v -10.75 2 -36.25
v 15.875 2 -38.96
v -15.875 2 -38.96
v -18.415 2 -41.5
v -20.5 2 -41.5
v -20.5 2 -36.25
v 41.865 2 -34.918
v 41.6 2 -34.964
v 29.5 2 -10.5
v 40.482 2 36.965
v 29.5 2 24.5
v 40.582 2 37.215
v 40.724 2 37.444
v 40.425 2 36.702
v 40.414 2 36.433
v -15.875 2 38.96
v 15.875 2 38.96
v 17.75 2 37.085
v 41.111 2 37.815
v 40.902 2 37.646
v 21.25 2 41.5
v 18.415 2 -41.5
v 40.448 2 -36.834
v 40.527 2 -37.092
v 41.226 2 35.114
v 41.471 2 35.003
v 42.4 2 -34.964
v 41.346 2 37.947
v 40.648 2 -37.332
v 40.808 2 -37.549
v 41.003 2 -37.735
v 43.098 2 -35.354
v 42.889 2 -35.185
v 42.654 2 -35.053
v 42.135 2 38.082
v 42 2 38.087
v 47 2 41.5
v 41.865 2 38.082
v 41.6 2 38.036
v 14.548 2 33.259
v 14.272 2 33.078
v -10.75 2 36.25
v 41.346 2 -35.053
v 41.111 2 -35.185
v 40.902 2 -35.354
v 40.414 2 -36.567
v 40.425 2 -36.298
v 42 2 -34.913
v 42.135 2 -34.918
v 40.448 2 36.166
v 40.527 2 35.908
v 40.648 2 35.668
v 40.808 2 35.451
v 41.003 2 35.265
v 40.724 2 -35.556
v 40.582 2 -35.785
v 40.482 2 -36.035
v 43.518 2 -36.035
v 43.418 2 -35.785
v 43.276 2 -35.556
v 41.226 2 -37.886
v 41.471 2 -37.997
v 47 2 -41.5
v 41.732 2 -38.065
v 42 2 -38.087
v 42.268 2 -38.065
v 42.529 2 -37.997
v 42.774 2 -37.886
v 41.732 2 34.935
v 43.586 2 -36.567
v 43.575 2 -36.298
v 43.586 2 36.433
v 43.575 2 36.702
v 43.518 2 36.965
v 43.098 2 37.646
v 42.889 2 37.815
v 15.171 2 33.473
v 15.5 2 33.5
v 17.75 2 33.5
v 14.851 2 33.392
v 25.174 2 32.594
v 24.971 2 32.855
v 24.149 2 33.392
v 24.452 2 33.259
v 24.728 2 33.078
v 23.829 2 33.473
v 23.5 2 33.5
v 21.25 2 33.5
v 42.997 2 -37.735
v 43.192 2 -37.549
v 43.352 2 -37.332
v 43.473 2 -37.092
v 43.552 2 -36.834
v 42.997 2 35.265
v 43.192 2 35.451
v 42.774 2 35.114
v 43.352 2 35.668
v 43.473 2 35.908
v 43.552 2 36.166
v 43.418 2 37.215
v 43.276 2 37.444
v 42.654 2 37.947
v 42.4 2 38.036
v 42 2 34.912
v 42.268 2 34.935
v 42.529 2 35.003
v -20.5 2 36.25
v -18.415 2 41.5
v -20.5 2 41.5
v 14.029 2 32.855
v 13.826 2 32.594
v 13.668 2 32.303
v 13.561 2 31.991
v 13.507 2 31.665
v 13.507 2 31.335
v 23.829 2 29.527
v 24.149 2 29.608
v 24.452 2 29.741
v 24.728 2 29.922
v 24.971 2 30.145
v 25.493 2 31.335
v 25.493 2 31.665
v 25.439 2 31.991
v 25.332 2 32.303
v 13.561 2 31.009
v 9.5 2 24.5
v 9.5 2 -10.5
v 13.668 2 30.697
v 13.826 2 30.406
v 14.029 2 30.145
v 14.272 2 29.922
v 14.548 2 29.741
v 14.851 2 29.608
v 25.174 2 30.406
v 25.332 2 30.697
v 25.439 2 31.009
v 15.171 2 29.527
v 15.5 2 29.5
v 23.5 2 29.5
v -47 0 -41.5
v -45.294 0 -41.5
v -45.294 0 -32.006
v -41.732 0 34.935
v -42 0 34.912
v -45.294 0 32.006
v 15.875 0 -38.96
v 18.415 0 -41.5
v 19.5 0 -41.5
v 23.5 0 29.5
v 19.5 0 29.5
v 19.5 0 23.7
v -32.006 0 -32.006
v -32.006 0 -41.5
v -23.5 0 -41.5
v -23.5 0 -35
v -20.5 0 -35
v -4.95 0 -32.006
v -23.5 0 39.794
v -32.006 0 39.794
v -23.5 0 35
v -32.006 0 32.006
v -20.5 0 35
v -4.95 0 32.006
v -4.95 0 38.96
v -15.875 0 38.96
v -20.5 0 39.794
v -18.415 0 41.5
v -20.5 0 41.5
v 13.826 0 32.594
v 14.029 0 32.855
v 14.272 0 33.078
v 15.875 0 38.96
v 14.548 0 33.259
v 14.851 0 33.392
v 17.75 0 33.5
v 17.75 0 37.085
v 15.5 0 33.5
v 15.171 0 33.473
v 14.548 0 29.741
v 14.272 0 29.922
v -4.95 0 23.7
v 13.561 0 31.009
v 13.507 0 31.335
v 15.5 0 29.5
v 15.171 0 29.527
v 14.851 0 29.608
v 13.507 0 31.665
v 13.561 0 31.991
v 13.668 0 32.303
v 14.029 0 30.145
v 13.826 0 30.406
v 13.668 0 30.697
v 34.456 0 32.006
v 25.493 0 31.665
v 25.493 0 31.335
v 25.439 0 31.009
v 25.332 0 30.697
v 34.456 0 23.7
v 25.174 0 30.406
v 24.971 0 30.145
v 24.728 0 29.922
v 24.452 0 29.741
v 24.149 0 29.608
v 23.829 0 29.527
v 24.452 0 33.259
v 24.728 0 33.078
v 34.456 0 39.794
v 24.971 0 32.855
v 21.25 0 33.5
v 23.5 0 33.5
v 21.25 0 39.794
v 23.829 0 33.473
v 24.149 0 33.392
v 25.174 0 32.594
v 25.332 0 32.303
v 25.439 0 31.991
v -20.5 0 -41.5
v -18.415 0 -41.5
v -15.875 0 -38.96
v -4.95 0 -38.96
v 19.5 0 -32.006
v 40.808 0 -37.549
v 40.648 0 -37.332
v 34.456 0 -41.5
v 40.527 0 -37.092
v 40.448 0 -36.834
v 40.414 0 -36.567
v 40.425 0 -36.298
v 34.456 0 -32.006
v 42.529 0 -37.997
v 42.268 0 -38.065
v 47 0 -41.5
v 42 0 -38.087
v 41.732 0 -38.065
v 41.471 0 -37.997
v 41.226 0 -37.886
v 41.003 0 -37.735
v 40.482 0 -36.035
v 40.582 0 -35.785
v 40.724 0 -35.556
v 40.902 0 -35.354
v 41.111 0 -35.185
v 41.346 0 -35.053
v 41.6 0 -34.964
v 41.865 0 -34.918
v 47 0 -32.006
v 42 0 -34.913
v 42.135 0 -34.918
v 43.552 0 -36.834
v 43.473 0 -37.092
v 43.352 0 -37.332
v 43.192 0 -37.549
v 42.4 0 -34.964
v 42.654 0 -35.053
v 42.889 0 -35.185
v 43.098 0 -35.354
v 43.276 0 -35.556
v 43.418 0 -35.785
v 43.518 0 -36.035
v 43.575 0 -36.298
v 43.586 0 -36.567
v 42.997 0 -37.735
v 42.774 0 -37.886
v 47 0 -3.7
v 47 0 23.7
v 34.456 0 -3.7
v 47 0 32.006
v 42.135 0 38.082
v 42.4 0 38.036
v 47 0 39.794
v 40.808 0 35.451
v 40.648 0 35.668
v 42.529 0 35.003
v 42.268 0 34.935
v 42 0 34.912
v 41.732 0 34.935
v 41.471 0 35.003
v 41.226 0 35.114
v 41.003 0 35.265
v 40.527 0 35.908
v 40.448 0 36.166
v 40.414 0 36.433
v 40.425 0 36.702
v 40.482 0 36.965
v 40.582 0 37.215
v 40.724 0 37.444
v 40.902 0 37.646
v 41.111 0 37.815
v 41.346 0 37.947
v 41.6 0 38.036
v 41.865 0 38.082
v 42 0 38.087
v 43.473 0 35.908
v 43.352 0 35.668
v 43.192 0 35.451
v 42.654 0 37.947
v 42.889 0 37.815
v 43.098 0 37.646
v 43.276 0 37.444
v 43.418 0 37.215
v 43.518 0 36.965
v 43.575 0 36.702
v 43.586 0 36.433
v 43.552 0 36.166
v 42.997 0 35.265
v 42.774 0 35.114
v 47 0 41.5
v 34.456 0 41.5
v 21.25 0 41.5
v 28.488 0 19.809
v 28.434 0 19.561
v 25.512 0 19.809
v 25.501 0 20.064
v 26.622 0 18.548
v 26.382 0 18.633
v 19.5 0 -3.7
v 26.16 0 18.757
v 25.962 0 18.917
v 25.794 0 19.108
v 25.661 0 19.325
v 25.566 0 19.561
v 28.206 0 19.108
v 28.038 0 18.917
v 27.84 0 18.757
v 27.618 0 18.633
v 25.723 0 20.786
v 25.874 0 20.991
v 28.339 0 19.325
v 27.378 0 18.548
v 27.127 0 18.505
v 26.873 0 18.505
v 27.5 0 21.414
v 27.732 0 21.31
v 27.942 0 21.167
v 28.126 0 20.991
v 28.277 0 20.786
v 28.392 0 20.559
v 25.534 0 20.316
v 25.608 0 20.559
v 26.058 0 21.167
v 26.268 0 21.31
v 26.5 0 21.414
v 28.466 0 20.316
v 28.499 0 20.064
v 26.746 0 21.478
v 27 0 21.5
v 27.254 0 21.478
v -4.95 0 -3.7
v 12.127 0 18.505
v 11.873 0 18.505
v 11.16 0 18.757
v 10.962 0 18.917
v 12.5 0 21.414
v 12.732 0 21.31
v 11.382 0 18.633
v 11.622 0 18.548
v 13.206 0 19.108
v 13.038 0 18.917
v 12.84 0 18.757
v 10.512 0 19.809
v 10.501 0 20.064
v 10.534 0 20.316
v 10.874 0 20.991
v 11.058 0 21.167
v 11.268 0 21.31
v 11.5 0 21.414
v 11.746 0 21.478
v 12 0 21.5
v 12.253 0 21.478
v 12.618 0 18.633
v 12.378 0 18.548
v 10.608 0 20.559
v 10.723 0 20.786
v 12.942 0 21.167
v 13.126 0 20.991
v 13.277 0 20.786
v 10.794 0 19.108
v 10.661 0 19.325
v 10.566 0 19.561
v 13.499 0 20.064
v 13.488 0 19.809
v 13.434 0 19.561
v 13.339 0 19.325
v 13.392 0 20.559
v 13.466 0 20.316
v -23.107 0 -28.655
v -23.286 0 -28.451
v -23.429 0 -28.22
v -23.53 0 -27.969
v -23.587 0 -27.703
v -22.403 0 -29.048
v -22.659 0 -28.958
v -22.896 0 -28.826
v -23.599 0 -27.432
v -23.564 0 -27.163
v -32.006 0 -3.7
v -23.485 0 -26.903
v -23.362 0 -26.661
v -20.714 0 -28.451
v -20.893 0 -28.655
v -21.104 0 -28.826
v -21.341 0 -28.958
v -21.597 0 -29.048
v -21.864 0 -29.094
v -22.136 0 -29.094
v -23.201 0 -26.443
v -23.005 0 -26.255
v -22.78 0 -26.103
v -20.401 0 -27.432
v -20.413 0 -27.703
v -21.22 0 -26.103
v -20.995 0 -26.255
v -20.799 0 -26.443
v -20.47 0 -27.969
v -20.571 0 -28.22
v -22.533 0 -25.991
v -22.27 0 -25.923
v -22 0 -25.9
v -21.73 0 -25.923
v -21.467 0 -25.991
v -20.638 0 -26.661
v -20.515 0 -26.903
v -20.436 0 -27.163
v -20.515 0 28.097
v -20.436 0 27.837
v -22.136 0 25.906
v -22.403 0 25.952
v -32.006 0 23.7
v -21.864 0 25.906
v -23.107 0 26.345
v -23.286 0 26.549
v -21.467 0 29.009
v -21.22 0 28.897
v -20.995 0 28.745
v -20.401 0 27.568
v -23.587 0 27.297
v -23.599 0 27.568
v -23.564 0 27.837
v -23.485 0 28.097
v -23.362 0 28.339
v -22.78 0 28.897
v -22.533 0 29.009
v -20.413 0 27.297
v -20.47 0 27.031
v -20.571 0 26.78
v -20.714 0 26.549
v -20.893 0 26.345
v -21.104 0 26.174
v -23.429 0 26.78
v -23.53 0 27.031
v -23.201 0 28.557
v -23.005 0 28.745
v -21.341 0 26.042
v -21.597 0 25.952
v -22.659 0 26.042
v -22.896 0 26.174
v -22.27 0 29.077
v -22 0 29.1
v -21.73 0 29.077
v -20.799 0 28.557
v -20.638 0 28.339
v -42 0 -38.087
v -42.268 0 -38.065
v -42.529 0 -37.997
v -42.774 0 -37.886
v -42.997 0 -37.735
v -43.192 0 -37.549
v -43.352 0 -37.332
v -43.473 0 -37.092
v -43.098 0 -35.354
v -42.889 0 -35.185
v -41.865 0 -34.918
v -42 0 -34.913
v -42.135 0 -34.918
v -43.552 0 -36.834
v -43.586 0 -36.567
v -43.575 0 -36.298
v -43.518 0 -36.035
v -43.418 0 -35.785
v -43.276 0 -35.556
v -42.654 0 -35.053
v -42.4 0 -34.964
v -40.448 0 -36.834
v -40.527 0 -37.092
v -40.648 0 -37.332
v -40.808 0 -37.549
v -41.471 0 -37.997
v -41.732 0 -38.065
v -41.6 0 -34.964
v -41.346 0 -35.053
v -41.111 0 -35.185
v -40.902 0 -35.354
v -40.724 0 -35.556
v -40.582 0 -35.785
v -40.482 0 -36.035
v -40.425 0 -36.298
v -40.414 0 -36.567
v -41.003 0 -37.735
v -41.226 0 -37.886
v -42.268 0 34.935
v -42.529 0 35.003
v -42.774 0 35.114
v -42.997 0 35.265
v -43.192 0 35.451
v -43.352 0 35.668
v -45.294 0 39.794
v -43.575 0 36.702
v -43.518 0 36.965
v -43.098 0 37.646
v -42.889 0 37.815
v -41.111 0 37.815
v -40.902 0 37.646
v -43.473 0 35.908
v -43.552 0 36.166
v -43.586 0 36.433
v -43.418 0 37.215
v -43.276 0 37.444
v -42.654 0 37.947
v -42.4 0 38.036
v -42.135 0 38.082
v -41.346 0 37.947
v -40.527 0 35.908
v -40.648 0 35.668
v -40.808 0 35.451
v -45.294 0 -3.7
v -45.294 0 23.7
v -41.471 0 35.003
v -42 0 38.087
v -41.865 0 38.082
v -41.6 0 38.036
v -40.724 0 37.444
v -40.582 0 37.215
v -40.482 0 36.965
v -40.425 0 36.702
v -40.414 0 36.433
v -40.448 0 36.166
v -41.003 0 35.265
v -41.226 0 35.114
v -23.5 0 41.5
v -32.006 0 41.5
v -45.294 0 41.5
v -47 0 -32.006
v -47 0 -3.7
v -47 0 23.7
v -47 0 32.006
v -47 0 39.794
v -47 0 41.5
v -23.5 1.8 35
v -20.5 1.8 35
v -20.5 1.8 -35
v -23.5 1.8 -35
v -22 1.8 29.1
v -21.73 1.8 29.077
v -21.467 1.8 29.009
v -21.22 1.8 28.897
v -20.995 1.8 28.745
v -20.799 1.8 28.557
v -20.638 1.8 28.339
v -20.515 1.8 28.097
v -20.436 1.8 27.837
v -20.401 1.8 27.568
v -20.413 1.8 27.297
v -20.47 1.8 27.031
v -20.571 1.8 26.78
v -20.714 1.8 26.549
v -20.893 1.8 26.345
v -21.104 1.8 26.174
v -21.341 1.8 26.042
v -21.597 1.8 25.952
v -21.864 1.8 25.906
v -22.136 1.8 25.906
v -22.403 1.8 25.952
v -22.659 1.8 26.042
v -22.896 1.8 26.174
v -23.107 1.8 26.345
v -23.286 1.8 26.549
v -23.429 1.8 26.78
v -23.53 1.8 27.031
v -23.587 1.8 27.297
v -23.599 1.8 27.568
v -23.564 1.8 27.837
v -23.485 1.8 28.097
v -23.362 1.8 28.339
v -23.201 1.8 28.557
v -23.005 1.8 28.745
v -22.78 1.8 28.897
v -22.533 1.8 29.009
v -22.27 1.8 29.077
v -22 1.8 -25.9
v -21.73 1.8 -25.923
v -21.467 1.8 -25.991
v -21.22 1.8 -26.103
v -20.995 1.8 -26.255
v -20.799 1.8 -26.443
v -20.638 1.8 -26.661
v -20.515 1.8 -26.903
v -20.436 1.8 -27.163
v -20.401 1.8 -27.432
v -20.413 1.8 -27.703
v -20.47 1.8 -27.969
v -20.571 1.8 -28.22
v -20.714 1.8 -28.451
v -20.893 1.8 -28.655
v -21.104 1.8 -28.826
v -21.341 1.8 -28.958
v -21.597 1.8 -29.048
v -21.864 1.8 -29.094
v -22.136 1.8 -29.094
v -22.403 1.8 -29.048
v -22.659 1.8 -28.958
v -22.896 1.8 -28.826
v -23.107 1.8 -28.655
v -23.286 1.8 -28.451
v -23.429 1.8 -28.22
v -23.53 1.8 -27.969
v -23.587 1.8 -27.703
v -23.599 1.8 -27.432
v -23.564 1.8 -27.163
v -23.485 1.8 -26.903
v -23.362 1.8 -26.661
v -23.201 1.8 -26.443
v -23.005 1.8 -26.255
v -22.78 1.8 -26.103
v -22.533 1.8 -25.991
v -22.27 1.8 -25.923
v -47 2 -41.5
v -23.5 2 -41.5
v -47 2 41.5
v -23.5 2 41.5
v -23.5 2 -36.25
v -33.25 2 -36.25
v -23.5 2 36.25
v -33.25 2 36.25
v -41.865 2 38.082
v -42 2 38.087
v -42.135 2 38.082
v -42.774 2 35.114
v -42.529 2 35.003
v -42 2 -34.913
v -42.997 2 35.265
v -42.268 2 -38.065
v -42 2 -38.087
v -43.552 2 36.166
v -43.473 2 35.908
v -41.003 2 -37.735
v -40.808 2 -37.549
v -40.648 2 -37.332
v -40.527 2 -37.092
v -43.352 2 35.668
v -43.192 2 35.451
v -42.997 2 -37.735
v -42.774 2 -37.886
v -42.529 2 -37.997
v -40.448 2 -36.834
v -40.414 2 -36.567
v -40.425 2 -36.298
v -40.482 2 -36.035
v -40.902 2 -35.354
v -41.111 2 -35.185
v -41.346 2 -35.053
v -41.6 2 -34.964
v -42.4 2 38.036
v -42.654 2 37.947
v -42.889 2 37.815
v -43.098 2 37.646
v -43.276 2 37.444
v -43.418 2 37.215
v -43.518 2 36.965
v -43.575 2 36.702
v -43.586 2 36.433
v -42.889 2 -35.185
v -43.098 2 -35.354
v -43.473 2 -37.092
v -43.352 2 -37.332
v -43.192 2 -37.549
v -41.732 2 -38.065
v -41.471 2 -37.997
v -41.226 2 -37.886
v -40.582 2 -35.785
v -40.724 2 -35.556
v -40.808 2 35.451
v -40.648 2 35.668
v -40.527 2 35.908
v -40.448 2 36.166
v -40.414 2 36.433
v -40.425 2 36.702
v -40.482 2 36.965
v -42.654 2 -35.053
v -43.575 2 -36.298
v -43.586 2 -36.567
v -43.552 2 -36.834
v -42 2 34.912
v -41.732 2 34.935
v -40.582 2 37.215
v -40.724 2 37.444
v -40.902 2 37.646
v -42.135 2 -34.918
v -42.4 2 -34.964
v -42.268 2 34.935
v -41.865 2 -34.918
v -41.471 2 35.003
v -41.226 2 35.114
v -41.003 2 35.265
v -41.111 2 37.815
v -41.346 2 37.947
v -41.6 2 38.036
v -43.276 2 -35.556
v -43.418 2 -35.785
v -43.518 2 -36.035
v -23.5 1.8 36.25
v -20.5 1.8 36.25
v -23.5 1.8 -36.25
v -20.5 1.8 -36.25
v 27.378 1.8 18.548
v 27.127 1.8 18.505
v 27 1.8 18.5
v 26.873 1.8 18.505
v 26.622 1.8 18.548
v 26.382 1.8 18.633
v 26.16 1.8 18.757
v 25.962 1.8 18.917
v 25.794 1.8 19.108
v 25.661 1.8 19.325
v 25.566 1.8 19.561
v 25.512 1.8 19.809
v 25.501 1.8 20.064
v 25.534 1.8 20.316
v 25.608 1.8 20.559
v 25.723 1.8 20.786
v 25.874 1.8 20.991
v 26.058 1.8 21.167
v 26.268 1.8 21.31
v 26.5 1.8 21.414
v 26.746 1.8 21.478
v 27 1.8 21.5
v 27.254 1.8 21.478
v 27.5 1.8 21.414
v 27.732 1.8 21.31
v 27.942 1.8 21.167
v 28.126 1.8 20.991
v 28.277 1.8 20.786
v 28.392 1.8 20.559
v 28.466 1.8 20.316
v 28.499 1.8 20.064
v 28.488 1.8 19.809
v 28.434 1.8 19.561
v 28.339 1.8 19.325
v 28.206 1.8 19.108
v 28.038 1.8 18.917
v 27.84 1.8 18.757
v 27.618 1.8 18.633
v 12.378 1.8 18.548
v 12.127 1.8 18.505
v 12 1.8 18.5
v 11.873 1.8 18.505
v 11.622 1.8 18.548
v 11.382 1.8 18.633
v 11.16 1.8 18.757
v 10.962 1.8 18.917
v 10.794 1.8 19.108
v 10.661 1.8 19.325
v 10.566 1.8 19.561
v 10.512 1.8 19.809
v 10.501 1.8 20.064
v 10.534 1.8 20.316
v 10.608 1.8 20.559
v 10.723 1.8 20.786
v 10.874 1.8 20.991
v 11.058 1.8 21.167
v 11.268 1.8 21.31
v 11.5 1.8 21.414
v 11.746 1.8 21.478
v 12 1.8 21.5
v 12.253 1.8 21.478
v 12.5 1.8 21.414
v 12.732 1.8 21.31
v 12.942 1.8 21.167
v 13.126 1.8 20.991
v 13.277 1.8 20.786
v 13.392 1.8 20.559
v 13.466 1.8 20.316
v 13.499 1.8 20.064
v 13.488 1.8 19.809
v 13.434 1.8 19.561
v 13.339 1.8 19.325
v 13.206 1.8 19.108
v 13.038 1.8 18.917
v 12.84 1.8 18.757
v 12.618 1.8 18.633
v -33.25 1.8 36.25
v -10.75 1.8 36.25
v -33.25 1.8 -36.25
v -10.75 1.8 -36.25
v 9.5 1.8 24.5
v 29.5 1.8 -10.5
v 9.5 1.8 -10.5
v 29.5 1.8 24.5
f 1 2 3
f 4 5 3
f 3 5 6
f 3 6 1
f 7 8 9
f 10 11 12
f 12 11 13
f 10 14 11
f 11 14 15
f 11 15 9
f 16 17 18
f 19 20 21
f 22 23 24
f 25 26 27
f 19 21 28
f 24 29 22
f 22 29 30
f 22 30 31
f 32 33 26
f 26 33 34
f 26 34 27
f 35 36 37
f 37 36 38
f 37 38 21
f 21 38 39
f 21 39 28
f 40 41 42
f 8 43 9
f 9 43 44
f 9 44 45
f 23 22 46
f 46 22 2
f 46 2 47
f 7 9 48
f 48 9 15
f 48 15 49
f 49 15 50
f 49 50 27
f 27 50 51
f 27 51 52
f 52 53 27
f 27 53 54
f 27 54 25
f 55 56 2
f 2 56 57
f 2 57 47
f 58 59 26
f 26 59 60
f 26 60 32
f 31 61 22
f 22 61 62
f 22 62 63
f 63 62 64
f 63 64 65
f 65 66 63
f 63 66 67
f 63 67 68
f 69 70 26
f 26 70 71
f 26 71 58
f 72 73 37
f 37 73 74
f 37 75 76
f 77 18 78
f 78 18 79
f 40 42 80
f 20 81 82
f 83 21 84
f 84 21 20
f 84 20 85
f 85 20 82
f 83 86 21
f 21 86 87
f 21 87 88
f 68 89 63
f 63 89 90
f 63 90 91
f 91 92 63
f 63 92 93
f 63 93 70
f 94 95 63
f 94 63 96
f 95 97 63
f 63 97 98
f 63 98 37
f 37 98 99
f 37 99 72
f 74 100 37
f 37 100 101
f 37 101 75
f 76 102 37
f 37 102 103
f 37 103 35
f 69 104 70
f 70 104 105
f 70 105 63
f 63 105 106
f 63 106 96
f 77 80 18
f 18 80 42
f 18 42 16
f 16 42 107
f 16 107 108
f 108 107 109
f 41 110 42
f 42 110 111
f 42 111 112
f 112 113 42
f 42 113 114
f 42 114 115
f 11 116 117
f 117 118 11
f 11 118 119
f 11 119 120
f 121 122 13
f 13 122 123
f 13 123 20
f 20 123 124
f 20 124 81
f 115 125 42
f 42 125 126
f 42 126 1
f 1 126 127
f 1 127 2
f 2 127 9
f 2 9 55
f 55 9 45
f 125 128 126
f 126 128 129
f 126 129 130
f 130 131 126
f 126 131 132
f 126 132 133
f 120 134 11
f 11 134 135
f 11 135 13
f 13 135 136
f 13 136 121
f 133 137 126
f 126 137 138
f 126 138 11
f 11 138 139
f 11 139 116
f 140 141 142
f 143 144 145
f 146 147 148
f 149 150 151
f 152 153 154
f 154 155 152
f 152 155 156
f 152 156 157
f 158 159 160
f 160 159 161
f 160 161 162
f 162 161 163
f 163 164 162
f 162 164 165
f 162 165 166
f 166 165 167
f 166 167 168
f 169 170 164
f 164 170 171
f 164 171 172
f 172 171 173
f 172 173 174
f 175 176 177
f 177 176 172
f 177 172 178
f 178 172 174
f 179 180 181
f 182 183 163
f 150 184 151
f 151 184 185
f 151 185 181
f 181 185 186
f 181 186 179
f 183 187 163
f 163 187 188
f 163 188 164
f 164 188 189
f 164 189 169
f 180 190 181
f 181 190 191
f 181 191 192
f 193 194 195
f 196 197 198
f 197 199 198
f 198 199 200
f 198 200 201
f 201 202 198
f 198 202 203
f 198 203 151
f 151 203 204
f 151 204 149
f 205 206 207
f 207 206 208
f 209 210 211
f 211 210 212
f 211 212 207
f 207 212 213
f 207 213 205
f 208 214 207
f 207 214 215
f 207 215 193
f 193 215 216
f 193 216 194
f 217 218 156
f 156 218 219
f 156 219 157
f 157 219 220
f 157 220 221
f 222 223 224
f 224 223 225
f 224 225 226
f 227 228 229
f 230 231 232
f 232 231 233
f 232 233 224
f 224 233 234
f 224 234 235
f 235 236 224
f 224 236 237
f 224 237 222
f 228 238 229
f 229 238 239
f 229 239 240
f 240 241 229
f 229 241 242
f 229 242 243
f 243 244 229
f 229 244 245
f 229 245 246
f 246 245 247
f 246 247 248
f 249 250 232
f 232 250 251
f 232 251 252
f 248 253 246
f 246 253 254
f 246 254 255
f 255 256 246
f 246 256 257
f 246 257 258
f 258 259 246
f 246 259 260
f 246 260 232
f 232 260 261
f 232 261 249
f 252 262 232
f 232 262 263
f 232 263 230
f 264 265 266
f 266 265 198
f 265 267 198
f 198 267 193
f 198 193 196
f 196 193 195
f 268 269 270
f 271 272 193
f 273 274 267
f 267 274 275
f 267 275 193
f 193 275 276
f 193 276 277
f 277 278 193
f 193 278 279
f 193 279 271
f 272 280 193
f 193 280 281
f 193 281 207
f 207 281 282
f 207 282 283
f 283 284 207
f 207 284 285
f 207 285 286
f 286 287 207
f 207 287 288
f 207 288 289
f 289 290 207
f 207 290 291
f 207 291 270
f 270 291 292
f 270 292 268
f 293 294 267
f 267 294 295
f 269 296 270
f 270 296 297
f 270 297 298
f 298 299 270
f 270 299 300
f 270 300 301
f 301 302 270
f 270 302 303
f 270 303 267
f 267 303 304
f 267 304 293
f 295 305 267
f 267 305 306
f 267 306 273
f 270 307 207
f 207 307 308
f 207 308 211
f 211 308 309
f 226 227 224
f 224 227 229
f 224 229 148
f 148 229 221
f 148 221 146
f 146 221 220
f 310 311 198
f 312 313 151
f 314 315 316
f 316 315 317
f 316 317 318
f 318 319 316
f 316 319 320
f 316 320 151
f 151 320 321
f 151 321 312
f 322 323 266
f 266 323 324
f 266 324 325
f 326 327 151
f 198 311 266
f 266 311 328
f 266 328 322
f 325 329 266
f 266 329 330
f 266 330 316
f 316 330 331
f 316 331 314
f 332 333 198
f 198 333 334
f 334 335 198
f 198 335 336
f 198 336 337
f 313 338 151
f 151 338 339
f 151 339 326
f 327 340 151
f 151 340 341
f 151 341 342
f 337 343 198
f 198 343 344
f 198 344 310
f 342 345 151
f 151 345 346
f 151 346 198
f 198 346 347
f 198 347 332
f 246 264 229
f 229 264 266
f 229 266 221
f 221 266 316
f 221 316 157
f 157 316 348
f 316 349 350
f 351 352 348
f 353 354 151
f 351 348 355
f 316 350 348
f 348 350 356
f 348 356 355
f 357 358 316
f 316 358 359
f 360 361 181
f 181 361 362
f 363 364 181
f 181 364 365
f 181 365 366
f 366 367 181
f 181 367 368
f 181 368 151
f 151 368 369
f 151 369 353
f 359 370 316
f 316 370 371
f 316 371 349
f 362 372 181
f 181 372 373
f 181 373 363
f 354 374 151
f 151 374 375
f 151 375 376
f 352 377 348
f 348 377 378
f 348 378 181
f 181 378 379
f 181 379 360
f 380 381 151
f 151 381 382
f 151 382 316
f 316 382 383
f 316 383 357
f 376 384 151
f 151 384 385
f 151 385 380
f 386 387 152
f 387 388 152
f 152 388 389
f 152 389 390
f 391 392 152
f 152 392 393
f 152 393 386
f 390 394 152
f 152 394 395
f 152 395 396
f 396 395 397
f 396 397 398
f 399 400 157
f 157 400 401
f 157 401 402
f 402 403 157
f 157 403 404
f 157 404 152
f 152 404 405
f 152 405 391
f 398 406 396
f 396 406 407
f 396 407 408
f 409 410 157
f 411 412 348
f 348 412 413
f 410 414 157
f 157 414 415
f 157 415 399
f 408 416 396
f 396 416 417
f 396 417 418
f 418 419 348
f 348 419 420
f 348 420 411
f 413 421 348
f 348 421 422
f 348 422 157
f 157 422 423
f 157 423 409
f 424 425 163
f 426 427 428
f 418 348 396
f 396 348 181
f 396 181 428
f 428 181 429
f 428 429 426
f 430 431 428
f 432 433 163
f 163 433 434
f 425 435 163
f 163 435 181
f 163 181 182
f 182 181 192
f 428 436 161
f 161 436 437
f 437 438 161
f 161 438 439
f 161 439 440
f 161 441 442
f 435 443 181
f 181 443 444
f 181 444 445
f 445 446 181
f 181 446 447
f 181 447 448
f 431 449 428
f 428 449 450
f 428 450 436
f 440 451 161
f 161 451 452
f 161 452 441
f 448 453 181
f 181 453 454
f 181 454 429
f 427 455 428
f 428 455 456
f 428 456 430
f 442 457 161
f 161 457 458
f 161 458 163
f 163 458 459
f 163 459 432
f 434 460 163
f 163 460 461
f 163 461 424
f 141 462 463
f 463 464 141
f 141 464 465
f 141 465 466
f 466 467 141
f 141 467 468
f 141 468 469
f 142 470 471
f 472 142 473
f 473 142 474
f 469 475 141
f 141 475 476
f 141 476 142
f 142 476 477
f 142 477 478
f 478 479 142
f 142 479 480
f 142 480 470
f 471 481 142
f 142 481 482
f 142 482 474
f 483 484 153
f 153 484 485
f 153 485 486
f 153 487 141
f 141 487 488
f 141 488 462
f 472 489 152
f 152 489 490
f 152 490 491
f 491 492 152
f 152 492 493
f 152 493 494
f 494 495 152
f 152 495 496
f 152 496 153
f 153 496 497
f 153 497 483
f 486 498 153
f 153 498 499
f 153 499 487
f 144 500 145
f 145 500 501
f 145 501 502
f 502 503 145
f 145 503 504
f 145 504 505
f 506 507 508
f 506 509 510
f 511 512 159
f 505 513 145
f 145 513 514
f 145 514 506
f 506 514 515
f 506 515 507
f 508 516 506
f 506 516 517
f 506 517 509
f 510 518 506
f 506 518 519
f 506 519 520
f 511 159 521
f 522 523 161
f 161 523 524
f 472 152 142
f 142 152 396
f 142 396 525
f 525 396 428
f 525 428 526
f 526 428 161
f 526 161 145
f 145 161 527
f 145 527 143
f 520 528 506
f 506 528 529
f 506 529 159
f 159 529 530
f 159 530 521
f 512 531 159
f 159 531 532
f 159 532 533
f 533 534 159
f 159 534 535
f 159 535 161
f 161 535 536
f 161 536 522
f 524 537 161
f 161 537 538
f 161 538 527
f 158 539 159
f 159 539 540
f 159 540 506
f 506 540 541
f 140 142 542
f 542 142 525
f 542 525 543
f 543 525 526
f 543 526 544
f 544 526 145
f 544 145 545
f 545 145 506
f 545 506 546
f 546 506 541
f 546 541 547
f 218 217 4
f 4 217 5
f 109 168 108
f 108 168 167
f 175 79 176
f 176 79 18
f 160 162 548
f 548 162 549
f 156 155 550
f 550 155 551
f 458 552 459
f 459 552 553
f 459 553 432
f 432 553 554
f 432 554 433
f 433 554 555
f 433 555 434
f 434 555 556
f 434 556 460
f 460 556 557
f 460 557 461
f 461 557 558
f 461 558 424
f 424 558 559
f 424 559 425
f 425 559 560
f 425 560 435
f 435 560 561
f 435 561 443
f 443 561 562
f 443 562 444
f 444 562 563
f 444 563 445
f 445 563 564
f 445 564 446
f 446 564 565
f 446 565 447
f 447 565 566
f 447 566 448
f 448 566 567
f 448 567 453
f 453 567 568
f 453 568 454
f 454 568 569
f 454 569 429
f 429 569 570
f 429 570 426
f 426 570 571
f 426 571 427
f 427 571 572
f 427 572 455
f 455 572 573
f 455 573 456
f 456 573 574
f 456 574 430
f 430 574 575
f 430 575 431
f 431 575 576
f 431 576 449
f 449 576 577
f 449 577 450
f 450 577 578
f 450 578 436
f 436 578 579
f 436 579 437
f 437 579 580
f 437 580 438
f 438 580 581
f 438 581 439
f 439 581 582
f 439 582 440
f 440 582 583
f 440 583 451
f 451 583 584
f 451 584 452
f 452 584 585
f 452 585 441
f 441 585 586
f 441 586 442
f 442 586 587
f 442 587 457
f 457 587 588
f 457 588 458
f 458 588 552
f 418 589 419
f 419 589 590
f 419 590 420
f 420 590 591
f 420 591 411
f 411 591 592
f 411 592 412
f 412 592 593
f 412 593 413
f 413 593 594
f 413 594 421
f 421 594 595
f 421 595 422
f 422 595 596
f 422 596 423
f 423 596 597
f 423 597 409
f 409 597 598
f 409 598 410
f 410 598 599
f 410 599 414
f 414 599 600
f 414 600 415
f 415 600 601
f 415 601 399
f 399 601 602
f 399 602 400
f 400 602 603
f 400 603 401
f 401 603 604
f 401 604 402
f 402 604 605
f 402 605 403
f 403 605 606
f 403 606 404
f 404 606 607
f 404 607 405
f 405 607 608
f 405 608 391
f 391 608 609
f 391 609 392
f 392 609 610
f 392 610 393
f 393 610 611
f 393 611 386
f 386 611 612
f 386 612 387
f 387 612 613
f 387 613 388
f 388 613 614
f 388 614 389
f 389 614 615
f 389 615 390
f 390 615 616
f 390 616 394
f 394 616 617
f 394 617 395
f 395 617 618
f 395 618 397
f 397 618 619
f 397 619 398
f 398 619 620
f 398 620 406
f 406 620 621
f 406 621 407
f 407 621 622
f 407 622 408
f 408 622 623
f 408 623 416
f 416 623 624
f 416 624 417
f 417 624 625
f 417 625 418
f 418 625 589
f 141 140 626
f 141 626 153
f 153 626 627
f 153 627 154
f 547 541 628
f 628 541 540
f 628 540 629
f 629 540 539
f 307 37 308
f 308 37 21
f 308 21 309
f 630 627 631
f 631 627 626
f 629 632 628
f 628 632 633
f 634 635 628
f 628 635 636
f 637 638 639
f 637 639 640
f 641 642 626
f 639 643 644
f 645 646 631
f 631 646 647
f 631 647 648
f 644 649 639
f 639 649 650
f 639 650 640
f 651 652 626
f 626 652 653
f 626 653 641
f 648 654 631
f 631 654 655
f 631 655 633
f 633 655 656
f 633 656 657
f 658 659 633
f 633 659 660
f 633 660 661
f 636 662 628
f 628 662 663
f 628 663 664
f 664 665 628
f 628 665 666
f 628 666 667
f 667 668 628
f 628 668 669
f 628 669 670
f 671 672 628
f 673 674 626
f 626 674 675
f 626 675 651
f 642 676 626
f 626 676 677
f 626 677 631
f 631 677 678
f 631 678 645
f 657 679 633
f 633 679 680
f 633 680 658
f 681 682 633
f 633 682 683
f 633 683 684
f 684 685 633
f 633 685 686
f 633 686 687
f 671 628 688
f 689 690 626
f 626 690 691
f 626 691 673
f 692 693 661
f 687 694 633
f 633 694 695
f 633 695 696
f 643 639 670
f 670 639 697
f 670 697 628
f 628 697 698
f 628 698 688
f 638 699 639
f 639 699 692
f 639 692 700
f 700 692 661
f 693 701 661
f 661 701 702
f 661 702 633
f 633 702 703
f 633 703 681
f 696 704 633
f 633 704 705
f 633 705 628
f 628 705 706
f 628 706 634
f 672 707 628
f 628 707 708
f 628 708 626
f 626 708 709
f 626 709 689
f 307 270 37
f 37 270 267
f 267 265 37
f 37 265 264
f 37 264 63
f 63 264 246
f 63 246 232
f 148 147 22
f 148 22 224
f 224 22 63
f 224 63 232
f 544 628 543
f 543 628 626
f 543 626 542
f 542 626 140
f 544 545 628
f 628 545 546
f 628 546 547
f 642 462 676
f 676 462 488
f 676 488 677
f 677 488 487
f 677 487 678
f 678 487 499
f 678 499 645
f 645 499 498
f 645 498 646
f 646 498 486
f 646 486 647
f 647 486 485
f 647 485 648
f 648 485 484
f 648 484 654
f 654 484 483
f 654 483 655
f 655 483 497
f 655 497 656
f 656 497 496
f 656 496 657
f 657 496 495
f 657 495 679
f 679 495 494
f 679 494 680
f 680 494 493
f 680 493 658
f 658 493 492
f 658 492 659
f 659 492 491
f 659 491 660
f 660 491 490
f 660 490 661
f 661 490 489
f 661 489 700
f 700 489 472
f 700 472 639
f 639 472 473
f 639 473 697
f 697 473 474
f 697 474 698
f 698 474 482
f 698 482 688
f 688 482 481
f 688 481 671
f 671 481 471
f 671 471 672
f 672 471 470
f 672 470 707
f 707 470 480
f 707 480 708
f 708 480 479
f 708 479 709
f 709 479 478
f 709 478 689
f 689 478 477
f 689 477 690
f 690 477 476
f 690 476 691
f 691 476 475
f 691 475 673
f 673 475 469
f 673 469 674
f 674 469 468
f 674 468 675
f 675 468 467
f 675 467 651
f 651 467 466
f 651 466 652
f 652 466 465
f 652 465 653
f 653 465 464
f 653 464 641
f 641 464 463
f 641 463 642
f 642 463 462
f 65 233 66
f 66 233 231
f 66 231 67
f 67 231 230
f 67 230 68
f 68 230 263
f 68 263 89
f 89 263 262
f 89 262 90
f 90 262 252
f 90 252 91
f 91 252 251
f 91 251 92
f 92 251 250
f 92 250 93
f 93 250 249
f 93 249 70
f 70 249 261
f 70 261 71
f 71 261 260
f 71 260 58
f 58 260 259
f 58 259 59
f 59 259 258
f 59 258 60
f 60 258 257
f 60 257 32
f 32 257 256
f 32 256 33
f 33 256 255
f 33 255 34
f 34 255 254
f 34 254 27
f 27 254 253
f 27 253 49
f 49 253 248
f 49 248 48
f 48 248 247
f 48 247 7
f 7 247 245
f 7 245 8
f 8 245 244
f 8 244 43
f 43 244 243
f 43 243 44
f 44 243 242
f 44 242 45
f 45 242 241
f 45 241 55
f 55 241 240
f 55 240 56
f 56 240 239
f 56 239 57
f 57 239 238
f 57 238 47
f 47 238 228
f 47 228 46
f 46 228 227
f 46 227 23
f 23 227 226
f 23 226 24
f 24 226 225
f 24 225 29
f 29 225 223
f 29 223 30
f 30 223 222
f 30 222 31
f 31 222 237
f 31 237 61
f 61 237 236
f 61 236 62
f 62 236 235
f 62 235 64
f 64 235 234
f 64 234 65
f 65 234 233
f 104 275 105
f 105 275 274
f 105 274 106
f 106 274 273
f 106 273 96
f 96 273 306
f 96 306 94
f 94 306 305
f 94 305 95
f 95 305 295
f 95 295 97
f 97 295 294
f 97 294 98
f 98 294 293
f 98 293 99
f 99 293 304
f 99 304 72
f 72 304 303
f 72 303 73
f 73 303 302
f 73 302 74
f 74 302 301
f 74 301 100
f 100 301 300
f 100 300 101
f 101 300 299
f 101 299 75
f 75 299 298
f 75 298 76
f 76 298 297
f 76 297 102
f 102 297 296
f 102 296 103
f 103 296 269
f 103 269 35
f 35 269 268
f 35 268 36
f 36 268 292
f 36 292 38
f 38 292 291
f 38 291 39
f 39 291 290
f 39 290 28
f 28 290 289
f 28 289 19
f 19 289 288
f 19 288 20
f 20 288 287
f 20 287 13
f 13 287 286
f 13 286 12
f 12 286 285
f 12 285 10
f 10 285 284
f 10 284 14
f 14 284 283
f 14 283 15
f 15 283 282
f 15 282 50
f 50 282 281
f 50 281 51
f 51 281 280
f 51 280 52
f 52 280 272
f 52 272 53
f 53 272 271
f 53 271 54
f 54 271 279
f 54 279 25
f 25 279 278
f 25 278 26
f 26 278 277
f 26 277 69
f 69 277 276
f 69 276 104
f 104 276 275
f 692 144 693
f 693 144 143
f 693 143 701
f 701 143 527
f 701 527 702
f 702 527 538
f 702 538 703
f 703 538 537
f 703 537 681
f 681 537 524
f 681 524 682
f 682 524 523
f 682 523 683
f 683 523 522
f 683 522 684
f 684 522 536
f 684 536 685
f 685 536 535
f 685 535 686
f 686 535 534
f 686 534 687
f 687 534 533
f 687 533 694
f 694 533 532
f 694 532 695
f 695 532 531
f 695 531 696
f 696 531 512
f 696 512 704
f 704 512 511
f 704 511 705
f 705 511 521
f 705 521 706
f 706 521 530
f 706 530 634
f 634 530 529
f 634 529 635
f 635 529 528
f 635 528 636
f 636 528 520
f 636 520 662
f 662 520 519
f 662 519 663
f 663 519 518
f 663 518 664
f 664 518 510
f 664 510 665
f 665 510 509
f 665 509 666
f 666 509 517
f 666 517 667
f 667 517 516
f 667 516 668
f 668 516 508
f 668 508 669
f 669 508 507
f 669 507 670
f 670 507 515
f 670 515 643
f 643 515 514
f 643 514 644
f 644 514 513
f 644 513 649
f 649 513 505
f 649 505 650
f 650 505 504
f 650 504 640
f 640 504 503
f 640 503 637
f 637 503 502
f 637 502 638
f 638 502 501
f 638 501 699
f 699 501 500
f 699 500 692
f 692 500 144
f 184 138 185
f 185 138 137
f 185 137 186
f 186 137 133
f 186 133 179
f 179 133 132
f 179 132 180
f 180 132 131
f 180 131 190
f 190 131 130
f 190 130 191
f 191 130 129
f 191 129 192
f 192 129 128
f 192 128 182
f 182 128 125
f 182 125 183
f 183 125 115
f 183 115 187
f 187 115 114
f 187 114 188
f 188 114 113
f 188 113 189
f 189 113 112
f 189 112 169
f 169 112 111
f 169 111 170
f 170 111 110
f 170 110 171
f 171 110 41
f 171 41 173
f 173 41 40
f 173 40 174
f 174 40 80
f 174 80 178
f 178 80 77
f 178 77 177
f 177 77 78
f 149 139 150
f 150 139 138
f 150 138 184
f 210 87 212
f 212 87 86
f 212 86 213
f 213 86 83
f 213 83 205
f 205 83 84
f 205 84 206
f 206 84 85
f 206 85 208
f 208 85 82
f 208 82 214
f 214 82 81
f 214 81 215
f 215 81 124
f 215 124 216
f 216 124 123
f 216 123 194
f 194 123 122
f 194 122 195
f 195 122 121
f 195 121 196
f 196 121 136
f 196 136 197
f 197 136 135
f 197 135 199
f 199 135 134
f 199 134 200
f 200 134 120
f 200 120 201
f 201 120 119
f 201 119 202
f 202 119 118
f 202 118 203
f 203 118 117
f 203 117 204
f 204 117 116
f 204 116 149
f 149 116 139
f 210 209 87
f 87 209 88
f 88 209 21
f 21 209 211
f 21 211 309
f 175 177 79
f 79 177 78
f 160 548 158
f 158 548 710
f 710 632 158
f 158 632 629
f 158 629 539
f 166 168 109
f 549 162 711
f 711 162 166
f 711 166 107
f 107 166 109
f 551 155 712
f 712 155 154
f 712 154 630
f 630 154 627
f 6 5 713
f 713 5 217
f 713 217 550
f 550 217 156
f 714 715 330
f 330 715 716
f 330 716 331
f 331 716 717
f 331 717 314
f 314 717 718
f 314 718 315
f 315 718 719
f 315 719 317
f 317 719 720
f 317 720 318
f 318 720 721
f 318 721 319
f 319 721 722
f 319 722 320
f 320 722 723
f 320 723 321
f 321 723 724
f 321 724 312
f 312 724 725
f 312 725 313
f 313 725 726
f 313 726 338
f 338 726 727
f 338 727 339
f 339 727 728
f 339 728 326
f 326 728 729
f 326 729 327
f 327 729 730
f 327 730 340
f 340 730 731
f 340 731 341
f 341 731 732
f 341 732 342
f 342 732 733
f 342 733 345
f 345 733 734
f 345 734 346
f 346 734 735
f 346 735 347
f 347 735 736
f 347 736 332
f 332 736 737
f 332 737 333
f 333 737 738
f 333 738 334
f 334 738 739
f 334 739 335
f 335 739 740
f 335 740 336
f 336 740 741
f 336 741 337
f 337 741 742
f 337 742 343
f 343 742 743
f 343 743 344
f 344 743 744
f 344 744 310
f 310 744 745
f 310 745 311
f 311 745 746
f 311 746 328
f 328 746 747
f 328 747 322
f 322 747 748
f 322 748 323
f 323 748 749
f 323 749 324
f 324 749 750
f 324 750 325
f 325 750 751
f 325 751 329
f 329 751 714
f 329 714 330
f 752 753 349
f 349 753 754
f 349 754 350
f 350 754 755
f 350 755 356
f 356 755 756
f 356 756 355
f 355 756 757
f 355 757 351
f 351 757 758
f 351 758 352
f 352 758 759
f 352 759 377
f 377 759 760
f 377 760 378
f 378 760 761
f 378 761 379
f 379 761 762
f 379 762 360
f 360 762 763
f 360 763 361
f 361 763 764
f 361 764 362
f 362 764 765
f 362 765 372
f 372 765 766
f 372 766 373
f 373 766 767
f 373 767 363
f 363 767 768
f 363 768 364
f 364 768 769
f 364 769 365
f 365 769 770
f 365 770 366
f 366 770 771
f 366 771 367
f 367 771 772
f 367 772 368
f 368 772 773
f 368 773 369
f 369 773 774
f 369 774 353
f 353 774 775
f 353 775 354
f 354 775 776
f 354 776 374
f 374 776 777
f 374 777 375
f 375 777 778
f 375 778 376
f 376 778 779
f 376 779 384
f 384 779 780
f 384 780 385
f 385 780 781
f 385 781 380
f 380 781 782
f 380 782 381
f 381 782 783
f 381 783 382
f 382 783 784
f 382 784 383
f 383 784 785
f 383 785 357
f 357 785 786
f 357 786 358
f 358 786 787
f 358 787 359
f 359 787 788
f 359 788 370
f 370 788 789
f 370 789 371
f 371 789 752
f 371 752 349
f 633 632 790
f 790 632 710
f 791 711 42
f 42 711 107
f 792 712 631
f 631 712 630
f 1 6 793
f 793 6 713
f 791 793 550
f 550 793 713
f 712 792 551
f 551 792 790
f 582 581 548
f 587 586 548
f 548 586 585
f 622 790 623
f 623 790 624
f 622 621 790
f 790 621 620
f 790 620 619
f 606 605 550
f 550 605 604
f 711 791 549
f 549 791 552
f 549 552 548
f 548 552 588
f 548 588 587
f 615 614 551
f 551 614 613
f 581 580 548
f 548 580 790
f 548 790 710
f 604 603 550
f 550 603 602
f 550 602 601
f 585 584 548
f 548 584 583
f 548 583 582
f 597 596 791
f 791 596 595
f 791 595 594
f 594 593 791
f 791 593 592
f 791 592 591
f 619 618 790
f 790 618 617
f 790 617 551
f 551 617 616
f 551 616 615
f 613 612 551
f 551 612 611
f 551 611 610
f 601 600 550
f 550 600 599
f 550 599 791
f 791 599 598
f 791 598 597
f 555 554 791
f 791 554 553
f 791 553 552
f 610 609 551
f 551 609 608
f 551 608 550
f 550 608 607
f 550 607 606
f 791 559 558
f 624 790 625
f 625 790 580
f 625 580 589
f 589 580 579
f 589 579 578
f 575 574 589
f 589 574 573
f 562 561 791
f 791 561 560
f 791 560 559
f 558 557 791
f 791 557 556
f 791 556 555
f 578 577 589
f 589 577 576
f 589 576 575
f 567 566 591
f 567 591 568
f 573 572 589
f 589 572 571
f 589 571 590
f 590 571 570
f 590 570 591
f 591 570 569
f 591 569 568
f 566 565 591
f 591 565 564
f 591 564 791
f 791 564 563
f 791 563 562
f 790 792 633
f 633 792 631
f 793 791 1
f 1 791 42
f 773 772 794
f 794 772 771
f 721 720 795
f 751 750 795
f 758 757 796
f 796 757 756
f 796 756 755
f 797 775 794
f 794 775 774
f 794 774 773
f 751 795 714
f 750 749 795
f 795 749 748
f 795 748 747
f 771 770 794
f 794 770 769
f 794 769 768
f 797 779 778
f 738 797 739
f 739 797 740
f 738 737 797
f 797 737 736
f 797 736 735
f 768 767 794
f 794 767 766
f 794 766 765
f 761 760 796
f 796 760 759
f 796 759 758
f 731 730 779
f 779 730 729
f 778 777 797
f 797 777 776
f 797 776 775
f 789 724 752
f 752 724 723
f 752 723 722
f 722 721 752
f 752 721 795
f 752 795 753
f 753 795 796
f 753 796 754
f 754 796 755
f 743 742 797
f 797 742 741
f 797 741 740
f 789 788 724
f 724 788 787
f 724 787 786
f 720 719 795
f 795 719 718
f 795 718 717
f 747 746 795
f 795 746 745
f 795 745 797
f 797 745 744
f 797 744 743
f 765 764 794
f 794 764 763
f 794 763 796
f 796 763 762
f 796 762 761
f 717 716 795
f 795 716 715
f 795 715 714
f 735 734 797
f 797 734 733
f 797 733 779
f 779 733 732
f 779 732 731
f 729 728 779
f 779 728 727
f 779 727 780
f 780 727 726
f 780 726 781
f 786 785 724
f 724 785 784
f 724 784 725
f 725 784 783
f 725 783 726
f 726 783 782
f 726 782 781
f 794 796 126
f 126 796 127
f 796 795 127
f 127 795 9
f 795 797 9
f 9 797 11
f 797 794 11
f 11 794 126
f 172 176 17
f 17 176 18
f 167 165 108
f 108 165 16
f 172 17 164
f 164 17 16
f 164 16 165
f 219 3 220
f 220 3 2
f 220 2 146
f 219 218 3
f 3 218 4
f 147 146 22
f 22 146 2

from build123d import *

# Parameters (mm, degrees)
SKETCH1_W           = 94
SKETCH1_H           = 83
SKETCH1_R           = 1.5875
BOSS_EXTRUDE1_DEPTH = 2
SKETCH2_R           = 1.6
SKETCH2_R_2         = 1.5
SKETCH2_W           = 3
SKETCH2_H           = 6.5
CUT_EXTRUDE1_DEPTH  = 3
SKETCH3_W           = 22.5
SKETCH3_H           = 72.5
SKETCH3_W_2         = 20
SKETCH3_H_2         = 35
CUT_EXTRUDE2_DEPTH  = 0.2
CUT_EXTRUDE3_DEPTH  = 3


with BuildPart() as part:
    # Sketch1 → Boss-Extrude1 (new body)
    with BuildSketch(Plane(origin=(0, 0, 0), x_dir=(1, 0, 0), z_dir=(0, 1, 0))):
        Rectangle(SKETCH1_W, SKETCH1_H)
        with Locations((-42, 36.5)):
            Circle(SKETCH1_R, mode=Mode.SUBTRACT)
        with Locations((42, 36.5)):
            Circle(SKETCH1_R, mode=Mode.SUBTRACT)
        with Locations((42, -36.5)):
            Circle(SKETCH1_R, mode=Mode.SUBTRACT)
        with Locations((-42, -36.5)):
            Circle(SKETCH1_R, mode=Mode.SUBTRACT)
    extrude(amount=BOSS_EXTRUDE1_DEPTH)

    # Sketch2 → Cut-Extrude1 (cut, through all)
    with BuildSketch(Plane(origin=(0, 2, 0), x_dir=(1, 0, 0), z_dir=(0, 1, 0))):
        with Locations((-22, -27.5)):
            Circle(SKETCH2_R)
        with Locations((-22, 27.5)):
            Circle(SKETCH2_R)
        with Locations((12, -20)):
            Circle(SKETCH2_R_2)
        with Locations((27, -20)):
            Circle(SKETCH2_R_2)
        with Locations((-22, 38.25)):
            Rectangle(SKETCH2_W, SKETCH2_H)
        with Locations((-22, -38.25)):
            Rectangle(SKETCH2_W, SKETCH2_H)
        with BuildLine():
            Line((15.5, -29.5), (23.5, -29.5))
            ThreePointArc((23.5, -29.5), (25.5, -31.5), (23.5, -33.5))
            Line((23.5, -33.5), (21.25, -33.5))
            Line((21.25, -33.5), (21.25, -41.5))
            Line((21.25, -41.5), (17.75, -41.5))
            Line((17.75, -41.5), (17.75, -33.5))
            Line((17.75, -33.5), (15.5, -33.5))
            ThreePointArc((15.5, -33.5), (13.5, -31.5), (15.5, -29.5))
        make_face()
    extrude(amount=-CUT_EXTRUDE1_DEPTH, mode=Mode.SUBTRACT)

    # Sketch3 → Cut-Extrude2 (cut)
    with BuildSketch(Plane(origin=(0, 2, 0), x_dir=(1, 0, 0), z_dir=(0, 1, 0))):
        with Locations((-22, 0)):
            Rectangle(SKETCH3_W, SKETCH3_H)
        with Locations((19.5, -7)):
            Rectangle(SKETCH3_W_2, SKETCH3_H_2)
    extrude(amount=-CUT_EXTRUDE2_DEPTH, mode=Mode.SUBTRACT)

    # Sketch4 → Cut-Extrude3 (cut, through all)
    with BuildSketch(Plane(origin=(0, 2, 0), x_dir=(1, 0, 0), z_dir=(0, 1, 0))):
        Polygon((18.415, 41.5), (-18.415, 41.5), (-15.875, 38.96), (15.875, 38.96), align=None)
        Polygon((-15.875, -38.96), (-18.415, -41.5), (17.75, -41.5), (17.75, -37.085), (15.875, -38.96), align=None)
    extrude(amount=-CUT_EXTRUDE3_DEPTH, mode=Mode.SUBTRACT)


solid = part.part
